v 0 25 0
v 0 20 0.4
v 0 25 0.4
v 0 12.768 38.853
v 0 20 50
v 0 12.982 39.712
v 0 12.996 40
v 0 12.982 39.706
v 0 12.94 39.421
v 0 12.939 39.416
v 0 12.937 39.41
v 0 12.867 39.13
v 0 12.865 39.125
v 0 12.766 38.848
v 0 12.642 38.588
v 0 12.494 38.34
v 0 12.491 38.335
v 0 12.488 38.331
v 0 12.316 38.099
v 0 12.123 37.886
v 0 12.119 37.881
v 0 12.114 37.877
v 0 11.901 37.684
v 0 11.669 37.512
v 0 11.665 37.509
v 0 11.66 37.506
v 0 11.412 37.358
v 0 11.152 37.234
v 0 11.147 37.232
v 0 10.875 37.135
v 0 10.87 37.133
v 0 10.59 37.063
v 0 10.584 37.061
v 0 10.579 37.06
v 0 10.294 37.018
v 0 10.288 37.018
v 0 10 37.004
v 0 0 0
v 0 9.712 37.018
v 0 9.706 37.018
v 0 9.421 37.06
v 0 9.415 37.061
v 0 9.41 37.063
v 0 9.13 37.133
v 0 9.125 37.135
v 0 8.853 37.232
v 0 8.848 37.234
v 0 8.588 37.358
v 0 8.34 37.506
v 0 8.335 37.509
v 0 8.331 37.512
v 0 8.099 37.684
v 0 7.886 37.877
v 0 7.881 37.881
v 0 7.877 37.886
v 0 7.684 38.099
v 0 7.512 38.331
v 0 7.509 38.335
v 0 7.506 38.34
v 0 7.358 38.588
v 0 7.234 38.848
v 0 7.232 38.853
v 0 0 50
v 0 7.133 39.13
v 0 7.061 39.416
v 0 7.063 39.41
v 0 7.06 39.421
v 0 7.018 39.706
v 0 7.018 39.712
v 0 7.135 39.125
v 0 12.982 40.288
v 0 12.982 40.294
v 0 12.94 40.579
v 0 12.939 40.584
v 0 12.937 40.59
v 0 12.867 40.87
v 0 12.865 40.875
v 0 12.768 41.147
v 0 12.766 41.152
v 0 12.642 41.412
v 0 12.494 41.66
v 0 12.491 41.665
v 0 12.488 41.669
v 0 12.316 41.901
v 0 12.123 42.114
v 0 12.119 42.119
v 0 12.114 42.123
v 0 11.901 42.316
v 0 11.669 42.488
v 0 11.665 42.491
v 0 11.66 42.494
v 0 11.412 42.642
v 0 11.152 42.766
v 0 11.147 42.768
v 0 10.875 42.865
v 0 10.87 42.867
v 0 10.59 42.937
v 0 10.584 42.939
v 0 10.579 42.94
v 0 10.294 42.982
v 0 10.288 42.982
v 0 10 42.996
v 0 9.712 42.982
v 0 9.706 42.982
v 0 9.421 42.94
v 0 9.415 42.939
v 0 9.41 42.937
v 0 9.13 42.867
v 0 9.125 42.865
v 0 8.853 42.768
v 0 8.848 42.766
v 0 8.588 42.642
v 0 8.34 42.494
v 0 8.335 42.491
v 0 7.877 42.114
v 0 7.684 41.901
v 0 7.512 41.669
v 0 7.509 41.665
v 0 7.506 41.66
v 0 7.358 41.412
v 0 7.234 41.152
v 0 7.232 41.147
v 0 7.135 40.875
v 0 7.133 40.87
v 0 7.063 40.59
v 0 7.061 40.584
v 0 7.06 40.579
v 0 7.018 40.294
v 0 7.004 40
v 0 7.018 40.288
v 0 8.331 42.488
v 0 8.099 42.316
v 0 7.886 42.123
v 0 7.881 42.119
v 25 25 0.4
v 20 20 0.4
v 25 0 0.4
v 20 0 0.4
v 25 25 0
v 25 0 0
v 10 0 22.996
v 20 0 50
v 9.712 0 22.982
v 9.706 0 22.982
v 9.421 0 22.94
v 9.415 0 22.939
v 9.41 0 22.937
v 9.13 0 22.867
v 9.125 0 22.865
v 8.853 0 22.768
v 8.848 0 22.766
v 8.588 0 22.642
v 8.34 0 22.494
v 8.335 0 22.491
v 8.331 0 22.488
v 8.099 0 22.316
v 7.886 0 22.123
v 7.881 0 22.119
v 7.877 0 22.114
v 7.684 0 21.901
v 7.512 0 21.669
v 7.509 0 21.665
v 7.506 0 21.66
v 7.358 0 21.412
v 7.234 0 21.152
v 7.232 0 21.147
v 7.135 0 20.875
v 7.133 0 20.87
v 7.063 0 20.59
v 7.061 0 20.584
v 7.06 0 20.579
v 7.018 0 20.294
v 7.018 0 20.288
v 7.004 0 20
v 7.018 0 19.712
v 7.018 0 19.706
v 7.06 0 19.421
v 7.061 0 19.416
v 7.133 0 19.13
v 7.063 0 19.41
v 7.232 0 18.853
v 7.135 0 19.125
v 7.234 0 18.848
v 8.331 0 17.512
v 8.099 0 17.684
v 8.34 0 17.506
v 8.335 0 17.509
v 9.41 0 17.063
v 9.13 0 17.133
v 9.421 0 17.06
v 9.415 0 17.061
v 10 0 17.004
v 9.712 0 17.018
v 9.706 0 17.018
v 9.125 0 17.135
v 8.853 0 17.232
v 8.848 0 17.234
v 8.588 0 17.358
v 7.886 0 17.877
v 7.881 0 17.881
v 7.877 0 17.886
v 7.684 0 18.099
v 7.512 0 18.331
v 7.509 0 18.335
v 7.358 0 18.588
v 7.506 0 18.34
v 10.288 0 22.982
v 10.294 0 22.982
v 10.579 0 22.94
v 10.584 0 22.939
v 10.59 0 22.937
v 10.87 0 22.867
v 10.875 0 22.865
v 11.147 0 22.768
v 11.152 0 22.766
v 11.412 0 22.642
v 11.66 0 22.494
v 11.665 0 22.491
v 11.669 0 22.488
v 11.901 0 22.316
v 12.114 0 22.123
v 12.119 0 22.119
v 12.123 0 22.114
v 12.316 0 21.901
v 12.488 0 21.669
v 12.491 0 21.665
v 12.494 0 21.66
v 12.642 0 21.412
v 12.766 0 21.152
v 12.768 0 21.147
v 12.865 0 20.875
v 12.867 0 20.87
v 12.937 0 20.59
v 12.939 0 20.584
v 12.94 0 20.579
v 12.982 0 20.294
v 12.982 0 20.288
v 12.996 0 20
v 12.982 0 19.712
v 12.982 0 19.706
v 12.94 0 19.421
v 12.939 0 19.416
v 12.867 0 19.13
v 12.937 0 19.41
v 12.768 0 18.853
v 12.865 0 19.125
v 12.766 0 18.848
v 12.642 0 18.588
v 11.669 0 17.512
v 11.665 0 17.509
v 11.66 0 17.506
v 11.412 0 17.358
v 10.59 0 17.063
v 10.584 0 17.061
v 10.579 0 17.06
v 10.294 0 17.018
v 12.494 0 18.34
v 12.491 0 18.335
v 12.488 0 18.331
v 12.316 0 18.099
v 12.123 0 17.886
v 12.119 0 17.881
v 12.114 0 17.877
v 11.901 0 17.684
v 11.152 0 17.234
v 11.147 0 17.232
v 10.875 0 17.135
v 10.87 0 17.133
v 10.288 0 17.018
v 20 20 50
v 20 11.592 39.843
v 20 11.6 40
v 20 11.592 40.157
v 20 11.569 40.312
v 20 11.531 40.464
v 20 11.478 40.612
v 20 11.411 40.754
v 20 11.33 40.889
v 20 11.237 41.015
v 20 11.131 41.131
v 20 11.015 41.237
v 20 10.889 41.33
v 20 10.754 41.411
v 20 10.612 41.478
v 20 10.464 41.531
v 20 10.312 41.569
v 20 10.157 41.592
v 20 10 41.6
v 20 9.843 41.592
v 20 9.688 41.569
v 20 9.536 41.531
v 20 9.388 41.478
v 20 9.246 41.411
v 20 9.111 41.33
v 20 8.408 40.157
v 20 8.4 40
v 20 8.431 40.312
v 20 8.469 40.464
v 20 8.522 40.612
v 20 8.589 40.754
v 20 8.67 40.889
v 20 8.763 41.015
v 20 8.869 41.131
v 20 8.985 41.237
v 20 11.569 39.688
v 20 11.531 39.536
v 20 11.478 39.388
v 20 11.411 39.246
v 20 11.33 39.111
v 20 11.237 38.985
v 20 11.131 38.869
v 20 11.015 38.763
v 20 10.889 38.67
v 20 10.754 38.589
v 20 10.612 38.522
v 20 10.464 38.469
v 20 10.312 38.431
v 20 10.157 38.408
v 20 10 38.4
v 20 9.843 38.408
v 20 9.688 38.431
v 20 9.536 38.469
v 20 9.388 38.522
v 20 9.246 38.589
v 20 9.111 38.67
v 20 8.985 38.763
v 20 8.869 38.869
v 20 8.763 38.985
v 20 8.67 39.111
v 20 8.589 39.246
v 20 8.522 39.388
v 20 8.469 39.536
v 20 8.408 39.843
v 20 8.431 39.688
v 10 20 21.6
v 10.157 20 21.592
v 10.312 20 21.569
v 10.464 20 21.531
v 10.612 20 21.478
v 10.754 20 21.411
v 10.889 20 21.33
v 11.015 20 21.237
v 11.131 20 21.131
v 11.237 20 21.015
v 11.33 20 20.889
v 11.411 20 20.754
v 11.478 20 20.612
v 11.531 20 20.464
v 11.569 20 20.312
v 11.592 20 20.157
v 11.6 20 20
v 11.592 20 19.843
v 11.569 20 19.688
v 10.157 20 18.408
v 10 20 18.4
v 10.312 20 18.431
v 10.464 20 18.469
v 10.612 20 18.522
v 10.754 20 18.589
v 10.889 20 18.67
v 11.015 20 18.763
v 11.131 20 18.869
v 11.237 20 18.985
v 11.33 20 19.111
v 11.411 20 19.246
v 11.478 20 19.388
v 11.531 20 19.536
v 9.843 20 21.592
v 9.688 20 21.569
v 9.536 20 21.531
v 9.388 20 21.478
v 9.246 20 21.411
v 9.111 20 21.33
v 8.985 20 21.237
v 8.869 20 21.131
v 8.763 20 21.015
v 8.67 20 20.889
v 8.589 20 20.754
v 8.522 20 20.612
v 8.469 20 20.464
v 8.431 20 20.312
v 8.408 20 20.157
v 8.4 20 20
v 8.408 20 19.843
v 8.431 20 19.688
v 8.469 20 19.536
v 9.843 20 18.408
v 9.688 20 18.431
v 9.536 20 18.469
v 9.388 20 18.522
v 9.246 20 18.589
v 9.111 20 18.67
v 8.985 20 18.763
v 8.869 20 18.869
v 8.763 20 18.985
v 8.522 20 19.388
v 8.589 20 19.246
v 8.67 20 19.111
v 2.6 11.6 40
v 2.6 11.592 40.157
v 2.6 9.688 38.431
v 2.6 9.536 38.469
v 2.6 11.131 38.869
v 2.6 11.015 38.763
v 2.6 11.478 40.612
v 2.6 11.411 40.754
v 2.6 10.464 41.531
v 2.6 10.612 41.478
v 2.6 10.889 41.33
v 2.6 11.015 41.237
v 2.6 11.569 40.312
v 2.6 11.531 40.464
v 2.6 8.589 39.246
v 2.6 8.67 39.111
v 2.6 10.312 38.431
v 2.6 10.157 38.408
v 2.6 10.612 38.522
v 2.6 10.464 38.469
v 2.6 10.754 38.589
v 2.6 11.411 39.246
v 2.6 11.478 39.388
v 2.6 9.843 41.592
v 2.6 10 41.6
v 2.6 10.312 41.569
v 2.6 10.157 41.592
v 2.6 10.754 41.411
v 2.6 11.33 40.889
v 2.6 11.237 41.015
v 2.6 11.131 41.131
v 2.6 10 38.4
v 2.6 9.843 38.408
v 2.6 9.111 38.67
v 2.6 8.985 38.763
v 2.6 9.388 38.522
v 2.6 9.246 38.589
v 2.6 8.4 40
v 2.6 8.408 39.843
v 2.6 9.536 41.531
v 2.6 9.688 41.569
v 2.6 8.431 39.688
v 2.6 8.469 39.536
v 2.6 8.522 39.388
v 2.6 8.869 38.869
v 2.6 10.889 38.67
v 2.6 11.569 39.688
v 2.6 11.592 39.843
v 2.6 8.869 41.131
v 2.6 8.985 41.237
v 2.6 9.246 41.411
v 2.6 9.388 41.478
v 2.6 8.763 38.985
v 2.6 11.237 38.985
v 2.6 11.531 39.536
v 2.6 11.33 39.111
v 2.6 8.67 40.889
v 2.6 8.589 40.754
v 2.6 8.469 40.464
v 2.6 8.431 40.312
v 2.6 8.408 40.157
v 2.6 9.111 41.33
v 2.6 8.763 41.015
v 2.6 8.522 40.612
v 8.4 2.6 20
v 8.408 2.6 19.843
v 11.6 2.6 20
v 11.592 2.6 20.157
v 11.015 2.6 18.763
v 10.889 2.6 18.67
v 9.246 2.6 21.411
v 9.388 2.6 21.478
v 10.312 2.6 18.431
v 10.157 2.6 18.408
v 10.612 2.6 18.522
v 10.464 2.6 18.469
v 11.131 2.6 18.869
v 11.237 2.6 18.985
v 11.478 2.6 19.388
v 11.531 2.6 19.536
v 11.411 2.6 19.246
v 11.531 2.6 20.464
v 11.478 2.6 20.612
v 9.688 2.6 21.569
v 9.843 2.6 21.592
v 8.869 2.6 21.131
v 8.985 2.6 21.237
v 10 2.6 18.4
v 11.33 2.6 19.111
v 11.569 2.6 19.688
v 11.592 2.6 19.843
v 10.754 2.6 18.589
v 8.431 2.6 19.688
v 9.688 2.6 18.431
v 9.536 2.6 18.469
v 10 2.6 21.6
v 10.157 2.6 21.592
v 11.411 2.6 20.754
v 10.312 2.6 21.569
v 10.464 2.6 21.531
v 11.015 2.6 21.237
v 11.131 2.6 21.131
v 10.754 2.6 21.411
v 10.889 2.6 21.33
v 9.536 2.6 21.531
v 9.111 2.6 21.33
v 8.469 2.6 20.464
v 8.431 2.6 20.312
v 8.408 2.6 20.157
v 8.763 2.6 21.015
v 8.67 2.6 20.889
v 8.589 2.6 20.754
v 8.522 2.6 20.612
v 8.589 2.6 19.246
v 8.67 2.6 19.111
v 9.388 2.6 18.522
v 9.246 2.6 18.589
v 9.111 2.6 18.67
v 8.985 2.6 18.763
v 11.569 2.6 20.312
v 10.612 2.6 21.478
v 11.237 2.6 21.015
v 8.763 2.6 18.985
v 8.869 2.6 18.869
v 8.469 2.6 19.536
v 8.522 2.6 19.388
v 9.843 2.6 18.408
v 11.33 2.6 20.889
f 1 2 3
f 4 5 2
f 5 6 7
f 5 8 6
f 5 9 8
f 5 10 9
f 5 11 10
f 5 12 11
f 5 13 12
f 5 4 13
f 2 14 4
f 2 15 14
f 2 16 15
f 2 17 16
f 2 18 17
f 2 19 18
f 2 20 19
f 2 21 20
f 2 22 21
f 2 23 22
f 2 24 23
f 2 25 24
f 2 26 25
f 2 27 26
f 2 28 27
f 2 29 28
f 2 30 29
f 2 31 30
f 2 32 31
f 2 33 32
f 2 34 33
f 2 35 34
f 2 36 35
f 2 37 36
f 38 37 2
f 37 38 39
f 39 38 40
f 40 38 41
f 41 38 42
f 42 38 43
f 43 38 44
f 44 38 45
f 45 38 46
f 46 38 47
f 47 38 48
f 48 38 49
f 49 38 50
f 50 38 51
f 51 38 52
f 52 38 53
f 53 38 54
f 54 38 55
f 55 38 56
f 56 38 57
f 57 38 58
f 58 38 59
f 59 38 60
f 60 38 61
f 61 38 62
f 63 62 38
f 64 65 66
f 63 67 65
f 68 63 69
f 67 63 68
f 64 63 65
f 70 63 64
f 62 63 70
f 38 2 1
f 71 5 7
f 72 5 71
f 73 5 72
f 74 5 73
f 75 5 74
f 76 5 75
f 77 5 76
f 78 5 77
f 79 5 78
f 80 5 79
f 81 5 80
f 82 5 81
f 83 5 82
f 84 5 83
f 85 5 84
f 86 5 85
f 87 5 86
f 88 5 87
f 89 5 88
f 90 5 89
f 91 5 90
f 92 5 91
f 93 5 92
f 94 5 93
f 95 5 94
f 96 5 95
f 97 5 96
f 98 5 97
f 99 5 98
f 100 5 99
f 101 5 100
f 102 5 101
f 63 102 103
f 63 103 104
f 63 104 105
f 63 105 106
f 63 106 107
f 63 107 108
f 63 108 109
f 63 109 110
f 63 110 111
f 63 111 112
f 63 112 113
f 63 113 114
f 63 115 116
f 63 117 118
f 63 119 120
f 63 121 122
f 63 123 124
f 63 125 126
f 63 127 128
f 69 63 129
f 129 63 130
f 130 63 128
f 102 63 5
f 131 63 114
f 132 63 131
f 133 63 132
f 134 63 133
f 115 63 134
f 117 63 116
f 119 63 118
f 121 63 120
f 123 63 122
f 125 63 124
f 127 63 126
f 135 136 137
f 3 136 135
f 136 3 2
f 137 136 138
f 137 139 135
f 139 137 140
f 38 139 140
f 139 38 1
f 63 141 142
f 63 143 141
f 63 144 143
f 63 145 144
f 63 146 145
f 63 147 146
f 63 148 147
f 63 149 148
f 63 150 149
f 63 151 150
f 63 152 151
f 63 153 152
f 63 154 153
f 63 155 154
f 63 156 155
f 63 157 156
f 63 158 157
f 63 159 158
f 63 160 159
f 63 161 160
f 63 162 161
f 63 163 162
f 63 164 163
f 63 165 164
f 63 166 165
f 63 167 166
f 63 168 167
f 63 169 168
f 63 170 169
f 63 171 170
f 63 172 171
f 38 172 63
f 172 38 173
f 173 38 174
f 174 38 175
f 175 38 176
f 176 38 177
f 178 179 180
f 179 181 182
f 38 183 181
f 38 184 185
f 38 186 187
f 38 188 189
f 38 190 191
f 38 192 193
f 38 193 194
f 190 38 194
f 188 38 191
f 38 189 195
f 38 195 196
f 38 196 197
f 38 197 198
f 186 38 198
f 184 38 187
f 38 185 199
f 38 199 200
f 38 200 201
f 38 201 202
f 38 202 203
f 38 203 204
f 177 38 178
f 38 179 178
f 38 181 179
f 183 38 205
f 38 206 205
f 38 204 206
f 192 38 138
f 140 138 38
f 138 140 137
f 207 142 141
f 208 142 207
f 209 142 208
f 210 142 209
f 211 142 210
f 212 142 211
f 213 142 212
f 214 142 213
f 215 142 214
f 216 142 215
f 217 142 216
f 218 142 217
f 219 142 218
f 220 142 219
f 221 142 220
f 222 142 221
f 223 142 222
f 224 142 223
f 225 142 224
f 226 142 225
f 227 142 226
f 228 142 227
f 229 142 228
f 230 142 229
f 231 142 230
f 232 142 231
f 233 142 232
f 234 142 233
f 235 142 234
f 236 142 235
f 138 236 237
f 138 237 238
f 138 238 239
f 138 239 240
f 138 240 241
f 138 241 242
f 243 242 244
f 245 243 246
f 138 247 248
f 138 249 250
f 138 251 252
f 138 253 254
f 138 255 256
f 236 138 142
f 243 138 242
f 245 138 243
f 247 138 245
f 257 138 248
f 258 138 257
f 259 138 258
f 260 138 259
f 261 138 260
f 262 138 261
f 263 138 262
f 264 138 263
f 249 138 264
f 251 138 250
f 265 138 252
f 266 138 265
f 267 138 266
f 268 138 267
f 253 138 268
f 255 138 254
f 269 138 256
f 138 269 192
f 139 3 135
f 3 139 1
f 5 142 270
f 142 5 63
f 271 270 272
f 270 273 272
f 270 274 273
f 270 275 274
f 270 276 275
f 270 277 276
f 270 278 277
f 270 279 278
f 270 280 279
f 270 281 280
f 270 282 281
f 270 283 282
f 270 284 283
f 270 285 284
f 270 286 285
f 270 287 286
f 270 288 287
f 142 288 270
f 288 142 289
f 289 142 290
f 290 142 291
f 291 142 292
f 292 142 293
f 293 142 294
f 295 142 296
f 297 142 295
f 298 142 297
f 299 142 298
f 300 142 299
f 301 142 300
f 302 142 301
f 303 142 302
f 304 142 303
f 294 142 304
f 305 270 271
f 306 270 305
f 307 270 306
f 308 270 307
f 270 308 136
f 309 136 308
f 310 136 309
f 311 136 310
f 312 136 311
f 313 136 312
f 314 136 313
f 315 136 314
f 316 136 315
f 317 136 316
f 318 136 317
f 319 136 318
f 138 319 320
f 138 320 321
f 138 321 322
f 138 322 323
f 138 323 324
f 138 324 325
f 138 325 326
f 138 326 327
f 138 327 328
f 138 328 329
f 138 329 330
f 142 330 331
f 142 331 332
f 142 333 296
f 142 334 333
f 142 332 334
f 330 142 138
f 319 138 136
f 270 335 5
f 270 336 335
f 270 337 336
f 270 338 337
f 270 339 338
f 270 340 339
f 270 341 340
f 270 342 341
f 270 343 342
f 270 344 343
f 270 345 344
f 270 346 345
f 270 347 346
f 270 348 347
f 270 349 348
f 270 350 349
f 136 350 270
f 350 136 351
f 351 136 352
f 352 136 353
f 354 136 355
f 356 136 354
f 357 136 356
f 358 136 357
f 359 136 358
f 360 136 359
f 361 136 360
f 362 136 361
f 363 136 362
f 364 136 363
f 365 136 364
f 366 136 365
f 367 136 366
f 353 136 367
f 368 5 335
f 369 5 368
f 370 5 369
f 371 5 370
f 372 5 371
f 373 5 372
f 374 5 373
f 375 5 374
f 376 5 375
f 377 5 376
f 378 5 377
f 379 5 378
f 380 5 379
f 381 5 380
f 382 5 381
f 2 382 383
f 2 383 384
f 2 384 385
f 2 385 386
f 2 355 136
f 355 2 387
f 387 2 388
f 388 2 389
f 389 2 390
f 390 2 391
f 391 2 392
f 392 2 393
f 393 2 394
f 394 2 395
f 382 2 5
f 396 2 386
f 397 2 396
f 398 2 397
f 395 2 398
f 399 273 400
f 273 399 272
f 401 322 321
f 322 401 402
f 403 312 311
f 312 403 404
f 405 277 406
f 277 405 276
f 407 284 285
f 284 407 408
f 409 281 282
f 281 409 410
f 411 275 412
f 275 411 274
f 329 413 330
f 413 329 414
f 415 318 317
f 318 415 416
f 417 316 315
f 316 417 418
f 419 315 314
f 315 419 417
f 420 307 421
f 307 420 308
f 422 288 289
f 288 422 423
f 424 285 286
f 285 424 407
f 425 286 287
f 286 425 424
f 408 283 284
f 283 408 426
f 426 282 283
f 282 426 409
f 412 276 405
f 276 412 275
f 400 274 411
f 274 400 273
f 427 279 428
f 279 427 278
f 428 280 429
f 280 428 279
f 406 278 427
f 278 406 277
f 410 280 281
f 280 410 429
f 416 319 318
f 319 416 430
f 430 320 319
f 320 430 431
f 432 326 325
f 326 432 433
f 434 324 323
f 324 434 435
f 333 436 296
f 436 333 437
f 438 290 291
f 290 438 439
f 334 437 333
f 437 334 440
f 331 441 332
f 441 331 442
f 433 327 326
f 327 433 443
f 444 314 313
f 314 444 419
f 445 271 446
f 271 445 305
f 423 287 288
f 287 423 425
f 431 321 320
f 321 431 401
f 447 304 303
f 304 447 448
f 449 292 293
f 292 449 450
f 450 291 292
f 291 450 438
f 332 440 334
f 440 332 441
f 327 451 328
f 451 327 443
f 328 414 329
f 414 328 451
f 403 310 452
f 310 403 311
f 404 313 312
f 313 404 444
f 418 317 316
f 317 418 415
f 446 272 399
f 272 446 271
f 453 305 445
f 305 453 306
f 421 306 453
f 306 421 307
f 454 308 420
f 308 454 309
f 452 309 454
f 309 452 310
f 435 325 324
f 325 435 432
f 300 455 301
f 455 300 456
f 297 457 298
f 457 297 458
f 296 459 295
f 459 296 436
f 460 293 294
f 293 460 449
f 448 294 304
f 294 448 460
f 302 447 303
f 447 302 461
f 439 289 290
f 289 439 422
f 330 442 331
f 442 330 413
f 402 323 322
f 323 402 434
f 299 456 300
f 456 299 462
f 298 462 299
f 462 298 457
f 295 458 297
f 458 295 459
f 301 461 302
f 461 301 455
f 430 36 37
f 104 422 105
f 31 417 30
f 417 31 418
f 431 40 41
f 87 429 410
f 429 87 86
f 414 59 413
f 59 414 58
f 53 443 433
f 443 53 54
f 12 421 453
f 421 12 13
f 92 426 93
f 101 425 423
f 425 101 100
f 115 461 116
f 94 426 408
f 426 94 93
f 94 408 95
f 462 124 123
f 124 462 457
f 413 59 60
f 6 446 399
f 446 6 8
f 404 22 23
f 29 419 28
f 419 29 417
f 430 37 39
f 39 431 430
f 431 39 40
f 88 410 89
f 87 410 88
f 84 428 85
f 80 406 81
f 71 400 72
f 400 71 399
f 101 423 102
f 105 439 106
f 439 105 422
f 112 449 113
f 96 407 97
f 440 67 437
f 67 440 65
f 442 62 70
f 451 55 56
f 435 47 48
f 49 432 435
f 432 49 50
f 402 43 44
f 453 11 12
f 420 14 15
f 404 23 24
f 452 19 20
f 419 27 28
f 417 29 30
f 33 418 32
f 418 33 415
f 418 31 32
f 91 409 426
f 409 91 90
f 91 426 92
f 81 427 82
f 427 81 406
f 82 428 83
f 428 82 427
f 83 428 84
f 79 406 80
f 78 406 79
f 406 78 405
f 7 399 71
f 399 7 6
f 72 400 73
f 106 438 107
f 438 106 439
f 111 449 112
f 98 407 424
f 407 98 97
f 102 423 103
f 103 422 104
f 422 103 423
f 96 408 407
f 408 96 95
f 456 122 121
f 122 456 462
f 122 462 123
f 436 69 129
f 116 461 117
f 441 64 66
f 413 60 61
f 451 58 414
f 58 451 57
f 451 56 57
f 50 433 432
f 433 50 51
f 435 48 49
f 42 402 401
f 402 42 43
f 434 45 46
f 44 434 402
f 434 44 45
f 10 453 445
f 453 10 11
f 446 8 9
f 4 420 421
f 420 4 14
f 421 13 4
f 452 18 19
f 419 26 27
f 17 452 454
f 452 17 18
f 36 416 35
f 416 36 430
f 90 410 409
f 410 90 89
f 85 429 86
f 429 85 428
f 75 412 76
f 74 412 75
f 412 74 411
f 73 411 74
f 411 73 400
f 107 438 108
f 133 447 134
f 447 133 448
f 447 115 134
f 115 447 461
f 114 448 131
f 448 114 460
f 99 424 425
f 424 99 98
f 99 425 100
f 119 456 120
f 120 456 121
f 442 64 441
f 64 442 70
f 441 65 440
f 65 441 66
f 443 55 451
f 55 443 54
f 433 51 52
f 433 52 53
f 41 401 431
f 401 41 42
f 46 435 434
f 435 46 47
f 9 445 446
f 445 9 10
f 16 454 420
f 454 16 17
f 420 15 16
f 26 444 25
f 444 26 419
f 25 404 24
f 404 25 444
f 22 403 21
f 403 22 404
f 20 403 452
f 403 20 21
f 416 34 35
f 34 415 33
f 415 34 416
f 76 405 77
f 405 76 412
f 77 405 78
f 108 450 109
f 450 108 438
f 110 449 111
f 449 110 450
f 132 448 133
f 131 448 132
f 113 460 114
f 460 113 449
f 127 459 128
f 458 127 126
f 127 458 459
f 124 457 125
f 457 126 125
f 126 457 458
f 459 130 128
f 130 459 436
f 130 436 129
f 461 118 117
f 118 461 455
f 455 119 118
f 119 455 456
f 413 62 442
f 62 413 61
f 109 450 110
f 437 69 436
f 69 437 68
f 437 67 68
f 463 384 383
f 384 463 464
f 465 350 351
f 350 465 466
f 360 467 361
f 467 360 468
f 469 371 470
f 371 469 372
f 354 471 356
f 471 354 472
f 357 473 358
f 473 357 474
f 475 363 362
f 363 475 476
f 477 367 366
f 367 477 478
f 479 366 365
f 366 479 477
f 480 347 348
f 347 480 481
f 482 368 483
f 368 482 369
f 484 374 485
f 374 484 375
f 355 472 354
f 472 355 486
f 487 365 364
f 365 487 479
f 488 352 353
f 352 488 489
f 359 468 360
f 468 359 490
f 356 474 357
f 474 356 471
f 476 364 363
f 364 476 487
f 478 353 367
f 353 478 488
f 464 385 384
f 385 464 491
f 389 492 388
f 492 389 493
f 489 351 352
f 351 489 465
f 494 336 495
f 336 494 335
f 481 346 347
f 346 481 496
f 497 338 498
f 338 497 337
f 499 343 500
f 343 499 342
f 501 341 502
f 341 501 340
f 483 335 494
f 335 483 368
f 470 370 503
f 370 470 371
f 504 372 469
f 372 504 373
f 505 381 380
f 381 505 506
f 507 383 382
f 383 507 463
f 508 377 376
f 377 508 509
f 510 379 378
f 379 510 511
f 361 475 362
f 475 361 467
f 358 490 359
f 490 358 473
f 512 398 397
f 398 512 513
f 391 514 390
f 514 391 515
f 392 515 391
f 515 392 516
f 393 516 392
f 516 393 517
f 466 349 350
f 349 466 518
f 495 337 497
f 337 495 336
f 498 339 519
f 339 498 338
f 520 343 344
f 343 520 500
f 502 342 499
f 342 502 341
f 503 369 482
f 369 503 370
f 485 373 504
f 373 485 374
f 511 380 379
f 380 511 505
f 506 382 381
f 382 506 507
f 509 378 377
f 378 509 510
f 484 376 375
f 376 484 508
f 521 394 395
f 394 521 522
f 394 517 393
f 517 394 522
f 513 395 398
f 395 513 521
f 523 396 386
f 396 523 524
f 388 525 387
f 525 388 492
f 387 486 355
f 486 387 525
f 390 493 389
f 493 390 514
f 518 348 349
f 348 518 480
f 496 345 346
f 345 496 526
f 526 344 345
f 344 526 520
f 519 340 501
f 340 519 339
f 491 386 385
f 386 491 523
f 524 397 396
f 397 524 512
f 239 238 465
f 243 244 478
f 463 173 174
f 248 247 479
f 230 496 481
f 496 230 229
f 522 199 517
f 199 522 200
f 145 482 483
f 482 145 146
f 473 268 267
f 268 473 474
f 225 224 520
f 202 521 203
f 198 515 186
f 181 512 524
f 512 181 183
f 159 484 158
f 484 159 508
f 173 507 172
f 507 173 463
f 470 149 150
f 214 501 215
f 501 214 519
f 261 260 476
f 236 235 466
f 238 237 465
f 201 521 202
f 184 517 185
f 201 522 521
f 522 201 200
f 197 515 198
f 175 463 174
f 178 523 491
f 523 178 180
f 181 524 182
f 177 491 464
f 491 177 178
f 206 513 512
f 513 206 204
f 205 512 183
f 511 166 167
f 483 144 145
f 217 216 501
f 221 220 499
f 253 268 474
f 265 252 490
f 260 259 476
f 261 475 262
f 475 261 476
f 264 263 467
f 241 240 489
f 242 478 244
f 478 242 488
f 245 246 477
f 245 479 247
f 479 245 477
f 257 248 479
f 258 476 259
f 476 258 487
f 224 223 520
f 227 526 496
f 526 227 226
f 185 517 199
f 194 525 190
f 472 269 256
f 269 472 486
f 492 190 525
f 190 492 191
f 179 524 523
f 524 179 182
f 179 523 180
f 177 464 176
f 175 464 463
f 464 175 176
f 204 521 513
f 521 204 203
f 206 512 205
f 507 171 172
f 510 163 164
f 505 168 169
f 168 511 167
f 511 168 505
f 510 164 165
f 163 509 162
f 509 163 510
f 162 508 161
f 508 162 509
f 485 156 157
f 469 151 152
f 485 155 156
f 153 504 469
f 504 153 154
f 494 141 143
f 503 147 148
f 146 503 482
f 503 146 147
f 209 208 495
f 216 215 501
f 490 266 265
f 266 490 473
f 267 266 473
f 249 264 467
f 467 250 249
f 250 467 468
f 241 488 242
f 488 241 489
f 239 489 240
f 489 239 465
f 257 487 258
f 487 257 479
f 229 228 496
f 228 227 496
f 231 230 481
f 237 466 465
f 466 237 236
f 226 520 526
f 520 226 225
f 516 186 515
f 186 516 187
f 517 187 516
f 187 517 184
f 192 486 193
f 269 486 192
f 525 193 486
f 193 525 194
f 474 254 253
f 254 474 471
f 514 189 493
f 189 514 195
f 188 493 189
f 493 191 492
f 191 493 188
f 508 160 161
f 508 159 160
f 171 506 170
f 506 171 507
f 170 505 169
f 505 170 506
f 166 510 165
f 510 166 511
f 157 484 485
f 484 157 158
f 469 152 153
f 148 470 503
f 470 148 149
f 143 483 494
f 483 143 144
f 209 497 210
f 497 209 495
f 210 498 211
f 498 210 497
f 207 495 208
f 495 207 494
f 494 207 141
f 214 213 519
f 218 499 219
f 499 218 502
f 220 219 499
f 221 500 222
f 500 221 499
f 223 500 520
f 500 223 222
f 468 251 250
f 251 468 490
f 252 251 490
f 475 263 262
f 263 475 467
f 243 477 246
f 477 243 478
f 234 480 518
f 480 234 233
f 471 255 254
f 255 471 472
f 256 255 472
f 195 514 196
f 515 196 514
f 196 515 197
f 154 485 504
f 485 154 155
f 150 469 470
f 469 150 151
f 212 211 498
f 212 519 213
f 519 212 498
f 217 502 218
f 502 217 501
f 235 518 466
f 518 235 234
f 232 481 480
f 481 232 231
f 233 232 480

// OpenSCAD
/**
 * Spacer for Malm drawer
 *
 * In my IKEA malm drawer cabinet, I installed a second, removable
 * bottom in one of the drawers to make better use of the space. 
 * This second bottom rests on four of these spacers. The feature a lip
 * on two sides that slides into the slots of the drawer in each 
 * corner. For additional support, up to two screws can be used
 * to fixate the spacers against the drawer frame.
 *
 * Copyright of this design 2018, Hendrik Busch
 * https://github.com/hmbusch
 *
 * Licensed under Creative Commons Attribution Share Alike 4.0.
 * https://creativecommons.org/licenses/by-sa/4.0/
 */

$fn = 64;

difference() {
    union() {
        cube([25, 25, 0.4]);
        cube([20, 20, 50]);
    }
    translate([-1, 10, 40]) rotate([0, 90, 0]) cylinder(d = 3.2, h = 22);
    translate([-0.1, 10, 40]) rotate([0, 90, 0]) color("green") cylinder(d1 = 6.1, d2 = 3.2, h = 2.7);
    
    translate([10, -1, 20]) rotate([-90, 0, 0]) cylinder(d = 3.2, h = 22);
    translate([10, -0.1, 20]) rotate([-90, 0, 0]) color("green") cylinder(d1 = 6.1, d2 = 3.2, h = 2.7);
}
